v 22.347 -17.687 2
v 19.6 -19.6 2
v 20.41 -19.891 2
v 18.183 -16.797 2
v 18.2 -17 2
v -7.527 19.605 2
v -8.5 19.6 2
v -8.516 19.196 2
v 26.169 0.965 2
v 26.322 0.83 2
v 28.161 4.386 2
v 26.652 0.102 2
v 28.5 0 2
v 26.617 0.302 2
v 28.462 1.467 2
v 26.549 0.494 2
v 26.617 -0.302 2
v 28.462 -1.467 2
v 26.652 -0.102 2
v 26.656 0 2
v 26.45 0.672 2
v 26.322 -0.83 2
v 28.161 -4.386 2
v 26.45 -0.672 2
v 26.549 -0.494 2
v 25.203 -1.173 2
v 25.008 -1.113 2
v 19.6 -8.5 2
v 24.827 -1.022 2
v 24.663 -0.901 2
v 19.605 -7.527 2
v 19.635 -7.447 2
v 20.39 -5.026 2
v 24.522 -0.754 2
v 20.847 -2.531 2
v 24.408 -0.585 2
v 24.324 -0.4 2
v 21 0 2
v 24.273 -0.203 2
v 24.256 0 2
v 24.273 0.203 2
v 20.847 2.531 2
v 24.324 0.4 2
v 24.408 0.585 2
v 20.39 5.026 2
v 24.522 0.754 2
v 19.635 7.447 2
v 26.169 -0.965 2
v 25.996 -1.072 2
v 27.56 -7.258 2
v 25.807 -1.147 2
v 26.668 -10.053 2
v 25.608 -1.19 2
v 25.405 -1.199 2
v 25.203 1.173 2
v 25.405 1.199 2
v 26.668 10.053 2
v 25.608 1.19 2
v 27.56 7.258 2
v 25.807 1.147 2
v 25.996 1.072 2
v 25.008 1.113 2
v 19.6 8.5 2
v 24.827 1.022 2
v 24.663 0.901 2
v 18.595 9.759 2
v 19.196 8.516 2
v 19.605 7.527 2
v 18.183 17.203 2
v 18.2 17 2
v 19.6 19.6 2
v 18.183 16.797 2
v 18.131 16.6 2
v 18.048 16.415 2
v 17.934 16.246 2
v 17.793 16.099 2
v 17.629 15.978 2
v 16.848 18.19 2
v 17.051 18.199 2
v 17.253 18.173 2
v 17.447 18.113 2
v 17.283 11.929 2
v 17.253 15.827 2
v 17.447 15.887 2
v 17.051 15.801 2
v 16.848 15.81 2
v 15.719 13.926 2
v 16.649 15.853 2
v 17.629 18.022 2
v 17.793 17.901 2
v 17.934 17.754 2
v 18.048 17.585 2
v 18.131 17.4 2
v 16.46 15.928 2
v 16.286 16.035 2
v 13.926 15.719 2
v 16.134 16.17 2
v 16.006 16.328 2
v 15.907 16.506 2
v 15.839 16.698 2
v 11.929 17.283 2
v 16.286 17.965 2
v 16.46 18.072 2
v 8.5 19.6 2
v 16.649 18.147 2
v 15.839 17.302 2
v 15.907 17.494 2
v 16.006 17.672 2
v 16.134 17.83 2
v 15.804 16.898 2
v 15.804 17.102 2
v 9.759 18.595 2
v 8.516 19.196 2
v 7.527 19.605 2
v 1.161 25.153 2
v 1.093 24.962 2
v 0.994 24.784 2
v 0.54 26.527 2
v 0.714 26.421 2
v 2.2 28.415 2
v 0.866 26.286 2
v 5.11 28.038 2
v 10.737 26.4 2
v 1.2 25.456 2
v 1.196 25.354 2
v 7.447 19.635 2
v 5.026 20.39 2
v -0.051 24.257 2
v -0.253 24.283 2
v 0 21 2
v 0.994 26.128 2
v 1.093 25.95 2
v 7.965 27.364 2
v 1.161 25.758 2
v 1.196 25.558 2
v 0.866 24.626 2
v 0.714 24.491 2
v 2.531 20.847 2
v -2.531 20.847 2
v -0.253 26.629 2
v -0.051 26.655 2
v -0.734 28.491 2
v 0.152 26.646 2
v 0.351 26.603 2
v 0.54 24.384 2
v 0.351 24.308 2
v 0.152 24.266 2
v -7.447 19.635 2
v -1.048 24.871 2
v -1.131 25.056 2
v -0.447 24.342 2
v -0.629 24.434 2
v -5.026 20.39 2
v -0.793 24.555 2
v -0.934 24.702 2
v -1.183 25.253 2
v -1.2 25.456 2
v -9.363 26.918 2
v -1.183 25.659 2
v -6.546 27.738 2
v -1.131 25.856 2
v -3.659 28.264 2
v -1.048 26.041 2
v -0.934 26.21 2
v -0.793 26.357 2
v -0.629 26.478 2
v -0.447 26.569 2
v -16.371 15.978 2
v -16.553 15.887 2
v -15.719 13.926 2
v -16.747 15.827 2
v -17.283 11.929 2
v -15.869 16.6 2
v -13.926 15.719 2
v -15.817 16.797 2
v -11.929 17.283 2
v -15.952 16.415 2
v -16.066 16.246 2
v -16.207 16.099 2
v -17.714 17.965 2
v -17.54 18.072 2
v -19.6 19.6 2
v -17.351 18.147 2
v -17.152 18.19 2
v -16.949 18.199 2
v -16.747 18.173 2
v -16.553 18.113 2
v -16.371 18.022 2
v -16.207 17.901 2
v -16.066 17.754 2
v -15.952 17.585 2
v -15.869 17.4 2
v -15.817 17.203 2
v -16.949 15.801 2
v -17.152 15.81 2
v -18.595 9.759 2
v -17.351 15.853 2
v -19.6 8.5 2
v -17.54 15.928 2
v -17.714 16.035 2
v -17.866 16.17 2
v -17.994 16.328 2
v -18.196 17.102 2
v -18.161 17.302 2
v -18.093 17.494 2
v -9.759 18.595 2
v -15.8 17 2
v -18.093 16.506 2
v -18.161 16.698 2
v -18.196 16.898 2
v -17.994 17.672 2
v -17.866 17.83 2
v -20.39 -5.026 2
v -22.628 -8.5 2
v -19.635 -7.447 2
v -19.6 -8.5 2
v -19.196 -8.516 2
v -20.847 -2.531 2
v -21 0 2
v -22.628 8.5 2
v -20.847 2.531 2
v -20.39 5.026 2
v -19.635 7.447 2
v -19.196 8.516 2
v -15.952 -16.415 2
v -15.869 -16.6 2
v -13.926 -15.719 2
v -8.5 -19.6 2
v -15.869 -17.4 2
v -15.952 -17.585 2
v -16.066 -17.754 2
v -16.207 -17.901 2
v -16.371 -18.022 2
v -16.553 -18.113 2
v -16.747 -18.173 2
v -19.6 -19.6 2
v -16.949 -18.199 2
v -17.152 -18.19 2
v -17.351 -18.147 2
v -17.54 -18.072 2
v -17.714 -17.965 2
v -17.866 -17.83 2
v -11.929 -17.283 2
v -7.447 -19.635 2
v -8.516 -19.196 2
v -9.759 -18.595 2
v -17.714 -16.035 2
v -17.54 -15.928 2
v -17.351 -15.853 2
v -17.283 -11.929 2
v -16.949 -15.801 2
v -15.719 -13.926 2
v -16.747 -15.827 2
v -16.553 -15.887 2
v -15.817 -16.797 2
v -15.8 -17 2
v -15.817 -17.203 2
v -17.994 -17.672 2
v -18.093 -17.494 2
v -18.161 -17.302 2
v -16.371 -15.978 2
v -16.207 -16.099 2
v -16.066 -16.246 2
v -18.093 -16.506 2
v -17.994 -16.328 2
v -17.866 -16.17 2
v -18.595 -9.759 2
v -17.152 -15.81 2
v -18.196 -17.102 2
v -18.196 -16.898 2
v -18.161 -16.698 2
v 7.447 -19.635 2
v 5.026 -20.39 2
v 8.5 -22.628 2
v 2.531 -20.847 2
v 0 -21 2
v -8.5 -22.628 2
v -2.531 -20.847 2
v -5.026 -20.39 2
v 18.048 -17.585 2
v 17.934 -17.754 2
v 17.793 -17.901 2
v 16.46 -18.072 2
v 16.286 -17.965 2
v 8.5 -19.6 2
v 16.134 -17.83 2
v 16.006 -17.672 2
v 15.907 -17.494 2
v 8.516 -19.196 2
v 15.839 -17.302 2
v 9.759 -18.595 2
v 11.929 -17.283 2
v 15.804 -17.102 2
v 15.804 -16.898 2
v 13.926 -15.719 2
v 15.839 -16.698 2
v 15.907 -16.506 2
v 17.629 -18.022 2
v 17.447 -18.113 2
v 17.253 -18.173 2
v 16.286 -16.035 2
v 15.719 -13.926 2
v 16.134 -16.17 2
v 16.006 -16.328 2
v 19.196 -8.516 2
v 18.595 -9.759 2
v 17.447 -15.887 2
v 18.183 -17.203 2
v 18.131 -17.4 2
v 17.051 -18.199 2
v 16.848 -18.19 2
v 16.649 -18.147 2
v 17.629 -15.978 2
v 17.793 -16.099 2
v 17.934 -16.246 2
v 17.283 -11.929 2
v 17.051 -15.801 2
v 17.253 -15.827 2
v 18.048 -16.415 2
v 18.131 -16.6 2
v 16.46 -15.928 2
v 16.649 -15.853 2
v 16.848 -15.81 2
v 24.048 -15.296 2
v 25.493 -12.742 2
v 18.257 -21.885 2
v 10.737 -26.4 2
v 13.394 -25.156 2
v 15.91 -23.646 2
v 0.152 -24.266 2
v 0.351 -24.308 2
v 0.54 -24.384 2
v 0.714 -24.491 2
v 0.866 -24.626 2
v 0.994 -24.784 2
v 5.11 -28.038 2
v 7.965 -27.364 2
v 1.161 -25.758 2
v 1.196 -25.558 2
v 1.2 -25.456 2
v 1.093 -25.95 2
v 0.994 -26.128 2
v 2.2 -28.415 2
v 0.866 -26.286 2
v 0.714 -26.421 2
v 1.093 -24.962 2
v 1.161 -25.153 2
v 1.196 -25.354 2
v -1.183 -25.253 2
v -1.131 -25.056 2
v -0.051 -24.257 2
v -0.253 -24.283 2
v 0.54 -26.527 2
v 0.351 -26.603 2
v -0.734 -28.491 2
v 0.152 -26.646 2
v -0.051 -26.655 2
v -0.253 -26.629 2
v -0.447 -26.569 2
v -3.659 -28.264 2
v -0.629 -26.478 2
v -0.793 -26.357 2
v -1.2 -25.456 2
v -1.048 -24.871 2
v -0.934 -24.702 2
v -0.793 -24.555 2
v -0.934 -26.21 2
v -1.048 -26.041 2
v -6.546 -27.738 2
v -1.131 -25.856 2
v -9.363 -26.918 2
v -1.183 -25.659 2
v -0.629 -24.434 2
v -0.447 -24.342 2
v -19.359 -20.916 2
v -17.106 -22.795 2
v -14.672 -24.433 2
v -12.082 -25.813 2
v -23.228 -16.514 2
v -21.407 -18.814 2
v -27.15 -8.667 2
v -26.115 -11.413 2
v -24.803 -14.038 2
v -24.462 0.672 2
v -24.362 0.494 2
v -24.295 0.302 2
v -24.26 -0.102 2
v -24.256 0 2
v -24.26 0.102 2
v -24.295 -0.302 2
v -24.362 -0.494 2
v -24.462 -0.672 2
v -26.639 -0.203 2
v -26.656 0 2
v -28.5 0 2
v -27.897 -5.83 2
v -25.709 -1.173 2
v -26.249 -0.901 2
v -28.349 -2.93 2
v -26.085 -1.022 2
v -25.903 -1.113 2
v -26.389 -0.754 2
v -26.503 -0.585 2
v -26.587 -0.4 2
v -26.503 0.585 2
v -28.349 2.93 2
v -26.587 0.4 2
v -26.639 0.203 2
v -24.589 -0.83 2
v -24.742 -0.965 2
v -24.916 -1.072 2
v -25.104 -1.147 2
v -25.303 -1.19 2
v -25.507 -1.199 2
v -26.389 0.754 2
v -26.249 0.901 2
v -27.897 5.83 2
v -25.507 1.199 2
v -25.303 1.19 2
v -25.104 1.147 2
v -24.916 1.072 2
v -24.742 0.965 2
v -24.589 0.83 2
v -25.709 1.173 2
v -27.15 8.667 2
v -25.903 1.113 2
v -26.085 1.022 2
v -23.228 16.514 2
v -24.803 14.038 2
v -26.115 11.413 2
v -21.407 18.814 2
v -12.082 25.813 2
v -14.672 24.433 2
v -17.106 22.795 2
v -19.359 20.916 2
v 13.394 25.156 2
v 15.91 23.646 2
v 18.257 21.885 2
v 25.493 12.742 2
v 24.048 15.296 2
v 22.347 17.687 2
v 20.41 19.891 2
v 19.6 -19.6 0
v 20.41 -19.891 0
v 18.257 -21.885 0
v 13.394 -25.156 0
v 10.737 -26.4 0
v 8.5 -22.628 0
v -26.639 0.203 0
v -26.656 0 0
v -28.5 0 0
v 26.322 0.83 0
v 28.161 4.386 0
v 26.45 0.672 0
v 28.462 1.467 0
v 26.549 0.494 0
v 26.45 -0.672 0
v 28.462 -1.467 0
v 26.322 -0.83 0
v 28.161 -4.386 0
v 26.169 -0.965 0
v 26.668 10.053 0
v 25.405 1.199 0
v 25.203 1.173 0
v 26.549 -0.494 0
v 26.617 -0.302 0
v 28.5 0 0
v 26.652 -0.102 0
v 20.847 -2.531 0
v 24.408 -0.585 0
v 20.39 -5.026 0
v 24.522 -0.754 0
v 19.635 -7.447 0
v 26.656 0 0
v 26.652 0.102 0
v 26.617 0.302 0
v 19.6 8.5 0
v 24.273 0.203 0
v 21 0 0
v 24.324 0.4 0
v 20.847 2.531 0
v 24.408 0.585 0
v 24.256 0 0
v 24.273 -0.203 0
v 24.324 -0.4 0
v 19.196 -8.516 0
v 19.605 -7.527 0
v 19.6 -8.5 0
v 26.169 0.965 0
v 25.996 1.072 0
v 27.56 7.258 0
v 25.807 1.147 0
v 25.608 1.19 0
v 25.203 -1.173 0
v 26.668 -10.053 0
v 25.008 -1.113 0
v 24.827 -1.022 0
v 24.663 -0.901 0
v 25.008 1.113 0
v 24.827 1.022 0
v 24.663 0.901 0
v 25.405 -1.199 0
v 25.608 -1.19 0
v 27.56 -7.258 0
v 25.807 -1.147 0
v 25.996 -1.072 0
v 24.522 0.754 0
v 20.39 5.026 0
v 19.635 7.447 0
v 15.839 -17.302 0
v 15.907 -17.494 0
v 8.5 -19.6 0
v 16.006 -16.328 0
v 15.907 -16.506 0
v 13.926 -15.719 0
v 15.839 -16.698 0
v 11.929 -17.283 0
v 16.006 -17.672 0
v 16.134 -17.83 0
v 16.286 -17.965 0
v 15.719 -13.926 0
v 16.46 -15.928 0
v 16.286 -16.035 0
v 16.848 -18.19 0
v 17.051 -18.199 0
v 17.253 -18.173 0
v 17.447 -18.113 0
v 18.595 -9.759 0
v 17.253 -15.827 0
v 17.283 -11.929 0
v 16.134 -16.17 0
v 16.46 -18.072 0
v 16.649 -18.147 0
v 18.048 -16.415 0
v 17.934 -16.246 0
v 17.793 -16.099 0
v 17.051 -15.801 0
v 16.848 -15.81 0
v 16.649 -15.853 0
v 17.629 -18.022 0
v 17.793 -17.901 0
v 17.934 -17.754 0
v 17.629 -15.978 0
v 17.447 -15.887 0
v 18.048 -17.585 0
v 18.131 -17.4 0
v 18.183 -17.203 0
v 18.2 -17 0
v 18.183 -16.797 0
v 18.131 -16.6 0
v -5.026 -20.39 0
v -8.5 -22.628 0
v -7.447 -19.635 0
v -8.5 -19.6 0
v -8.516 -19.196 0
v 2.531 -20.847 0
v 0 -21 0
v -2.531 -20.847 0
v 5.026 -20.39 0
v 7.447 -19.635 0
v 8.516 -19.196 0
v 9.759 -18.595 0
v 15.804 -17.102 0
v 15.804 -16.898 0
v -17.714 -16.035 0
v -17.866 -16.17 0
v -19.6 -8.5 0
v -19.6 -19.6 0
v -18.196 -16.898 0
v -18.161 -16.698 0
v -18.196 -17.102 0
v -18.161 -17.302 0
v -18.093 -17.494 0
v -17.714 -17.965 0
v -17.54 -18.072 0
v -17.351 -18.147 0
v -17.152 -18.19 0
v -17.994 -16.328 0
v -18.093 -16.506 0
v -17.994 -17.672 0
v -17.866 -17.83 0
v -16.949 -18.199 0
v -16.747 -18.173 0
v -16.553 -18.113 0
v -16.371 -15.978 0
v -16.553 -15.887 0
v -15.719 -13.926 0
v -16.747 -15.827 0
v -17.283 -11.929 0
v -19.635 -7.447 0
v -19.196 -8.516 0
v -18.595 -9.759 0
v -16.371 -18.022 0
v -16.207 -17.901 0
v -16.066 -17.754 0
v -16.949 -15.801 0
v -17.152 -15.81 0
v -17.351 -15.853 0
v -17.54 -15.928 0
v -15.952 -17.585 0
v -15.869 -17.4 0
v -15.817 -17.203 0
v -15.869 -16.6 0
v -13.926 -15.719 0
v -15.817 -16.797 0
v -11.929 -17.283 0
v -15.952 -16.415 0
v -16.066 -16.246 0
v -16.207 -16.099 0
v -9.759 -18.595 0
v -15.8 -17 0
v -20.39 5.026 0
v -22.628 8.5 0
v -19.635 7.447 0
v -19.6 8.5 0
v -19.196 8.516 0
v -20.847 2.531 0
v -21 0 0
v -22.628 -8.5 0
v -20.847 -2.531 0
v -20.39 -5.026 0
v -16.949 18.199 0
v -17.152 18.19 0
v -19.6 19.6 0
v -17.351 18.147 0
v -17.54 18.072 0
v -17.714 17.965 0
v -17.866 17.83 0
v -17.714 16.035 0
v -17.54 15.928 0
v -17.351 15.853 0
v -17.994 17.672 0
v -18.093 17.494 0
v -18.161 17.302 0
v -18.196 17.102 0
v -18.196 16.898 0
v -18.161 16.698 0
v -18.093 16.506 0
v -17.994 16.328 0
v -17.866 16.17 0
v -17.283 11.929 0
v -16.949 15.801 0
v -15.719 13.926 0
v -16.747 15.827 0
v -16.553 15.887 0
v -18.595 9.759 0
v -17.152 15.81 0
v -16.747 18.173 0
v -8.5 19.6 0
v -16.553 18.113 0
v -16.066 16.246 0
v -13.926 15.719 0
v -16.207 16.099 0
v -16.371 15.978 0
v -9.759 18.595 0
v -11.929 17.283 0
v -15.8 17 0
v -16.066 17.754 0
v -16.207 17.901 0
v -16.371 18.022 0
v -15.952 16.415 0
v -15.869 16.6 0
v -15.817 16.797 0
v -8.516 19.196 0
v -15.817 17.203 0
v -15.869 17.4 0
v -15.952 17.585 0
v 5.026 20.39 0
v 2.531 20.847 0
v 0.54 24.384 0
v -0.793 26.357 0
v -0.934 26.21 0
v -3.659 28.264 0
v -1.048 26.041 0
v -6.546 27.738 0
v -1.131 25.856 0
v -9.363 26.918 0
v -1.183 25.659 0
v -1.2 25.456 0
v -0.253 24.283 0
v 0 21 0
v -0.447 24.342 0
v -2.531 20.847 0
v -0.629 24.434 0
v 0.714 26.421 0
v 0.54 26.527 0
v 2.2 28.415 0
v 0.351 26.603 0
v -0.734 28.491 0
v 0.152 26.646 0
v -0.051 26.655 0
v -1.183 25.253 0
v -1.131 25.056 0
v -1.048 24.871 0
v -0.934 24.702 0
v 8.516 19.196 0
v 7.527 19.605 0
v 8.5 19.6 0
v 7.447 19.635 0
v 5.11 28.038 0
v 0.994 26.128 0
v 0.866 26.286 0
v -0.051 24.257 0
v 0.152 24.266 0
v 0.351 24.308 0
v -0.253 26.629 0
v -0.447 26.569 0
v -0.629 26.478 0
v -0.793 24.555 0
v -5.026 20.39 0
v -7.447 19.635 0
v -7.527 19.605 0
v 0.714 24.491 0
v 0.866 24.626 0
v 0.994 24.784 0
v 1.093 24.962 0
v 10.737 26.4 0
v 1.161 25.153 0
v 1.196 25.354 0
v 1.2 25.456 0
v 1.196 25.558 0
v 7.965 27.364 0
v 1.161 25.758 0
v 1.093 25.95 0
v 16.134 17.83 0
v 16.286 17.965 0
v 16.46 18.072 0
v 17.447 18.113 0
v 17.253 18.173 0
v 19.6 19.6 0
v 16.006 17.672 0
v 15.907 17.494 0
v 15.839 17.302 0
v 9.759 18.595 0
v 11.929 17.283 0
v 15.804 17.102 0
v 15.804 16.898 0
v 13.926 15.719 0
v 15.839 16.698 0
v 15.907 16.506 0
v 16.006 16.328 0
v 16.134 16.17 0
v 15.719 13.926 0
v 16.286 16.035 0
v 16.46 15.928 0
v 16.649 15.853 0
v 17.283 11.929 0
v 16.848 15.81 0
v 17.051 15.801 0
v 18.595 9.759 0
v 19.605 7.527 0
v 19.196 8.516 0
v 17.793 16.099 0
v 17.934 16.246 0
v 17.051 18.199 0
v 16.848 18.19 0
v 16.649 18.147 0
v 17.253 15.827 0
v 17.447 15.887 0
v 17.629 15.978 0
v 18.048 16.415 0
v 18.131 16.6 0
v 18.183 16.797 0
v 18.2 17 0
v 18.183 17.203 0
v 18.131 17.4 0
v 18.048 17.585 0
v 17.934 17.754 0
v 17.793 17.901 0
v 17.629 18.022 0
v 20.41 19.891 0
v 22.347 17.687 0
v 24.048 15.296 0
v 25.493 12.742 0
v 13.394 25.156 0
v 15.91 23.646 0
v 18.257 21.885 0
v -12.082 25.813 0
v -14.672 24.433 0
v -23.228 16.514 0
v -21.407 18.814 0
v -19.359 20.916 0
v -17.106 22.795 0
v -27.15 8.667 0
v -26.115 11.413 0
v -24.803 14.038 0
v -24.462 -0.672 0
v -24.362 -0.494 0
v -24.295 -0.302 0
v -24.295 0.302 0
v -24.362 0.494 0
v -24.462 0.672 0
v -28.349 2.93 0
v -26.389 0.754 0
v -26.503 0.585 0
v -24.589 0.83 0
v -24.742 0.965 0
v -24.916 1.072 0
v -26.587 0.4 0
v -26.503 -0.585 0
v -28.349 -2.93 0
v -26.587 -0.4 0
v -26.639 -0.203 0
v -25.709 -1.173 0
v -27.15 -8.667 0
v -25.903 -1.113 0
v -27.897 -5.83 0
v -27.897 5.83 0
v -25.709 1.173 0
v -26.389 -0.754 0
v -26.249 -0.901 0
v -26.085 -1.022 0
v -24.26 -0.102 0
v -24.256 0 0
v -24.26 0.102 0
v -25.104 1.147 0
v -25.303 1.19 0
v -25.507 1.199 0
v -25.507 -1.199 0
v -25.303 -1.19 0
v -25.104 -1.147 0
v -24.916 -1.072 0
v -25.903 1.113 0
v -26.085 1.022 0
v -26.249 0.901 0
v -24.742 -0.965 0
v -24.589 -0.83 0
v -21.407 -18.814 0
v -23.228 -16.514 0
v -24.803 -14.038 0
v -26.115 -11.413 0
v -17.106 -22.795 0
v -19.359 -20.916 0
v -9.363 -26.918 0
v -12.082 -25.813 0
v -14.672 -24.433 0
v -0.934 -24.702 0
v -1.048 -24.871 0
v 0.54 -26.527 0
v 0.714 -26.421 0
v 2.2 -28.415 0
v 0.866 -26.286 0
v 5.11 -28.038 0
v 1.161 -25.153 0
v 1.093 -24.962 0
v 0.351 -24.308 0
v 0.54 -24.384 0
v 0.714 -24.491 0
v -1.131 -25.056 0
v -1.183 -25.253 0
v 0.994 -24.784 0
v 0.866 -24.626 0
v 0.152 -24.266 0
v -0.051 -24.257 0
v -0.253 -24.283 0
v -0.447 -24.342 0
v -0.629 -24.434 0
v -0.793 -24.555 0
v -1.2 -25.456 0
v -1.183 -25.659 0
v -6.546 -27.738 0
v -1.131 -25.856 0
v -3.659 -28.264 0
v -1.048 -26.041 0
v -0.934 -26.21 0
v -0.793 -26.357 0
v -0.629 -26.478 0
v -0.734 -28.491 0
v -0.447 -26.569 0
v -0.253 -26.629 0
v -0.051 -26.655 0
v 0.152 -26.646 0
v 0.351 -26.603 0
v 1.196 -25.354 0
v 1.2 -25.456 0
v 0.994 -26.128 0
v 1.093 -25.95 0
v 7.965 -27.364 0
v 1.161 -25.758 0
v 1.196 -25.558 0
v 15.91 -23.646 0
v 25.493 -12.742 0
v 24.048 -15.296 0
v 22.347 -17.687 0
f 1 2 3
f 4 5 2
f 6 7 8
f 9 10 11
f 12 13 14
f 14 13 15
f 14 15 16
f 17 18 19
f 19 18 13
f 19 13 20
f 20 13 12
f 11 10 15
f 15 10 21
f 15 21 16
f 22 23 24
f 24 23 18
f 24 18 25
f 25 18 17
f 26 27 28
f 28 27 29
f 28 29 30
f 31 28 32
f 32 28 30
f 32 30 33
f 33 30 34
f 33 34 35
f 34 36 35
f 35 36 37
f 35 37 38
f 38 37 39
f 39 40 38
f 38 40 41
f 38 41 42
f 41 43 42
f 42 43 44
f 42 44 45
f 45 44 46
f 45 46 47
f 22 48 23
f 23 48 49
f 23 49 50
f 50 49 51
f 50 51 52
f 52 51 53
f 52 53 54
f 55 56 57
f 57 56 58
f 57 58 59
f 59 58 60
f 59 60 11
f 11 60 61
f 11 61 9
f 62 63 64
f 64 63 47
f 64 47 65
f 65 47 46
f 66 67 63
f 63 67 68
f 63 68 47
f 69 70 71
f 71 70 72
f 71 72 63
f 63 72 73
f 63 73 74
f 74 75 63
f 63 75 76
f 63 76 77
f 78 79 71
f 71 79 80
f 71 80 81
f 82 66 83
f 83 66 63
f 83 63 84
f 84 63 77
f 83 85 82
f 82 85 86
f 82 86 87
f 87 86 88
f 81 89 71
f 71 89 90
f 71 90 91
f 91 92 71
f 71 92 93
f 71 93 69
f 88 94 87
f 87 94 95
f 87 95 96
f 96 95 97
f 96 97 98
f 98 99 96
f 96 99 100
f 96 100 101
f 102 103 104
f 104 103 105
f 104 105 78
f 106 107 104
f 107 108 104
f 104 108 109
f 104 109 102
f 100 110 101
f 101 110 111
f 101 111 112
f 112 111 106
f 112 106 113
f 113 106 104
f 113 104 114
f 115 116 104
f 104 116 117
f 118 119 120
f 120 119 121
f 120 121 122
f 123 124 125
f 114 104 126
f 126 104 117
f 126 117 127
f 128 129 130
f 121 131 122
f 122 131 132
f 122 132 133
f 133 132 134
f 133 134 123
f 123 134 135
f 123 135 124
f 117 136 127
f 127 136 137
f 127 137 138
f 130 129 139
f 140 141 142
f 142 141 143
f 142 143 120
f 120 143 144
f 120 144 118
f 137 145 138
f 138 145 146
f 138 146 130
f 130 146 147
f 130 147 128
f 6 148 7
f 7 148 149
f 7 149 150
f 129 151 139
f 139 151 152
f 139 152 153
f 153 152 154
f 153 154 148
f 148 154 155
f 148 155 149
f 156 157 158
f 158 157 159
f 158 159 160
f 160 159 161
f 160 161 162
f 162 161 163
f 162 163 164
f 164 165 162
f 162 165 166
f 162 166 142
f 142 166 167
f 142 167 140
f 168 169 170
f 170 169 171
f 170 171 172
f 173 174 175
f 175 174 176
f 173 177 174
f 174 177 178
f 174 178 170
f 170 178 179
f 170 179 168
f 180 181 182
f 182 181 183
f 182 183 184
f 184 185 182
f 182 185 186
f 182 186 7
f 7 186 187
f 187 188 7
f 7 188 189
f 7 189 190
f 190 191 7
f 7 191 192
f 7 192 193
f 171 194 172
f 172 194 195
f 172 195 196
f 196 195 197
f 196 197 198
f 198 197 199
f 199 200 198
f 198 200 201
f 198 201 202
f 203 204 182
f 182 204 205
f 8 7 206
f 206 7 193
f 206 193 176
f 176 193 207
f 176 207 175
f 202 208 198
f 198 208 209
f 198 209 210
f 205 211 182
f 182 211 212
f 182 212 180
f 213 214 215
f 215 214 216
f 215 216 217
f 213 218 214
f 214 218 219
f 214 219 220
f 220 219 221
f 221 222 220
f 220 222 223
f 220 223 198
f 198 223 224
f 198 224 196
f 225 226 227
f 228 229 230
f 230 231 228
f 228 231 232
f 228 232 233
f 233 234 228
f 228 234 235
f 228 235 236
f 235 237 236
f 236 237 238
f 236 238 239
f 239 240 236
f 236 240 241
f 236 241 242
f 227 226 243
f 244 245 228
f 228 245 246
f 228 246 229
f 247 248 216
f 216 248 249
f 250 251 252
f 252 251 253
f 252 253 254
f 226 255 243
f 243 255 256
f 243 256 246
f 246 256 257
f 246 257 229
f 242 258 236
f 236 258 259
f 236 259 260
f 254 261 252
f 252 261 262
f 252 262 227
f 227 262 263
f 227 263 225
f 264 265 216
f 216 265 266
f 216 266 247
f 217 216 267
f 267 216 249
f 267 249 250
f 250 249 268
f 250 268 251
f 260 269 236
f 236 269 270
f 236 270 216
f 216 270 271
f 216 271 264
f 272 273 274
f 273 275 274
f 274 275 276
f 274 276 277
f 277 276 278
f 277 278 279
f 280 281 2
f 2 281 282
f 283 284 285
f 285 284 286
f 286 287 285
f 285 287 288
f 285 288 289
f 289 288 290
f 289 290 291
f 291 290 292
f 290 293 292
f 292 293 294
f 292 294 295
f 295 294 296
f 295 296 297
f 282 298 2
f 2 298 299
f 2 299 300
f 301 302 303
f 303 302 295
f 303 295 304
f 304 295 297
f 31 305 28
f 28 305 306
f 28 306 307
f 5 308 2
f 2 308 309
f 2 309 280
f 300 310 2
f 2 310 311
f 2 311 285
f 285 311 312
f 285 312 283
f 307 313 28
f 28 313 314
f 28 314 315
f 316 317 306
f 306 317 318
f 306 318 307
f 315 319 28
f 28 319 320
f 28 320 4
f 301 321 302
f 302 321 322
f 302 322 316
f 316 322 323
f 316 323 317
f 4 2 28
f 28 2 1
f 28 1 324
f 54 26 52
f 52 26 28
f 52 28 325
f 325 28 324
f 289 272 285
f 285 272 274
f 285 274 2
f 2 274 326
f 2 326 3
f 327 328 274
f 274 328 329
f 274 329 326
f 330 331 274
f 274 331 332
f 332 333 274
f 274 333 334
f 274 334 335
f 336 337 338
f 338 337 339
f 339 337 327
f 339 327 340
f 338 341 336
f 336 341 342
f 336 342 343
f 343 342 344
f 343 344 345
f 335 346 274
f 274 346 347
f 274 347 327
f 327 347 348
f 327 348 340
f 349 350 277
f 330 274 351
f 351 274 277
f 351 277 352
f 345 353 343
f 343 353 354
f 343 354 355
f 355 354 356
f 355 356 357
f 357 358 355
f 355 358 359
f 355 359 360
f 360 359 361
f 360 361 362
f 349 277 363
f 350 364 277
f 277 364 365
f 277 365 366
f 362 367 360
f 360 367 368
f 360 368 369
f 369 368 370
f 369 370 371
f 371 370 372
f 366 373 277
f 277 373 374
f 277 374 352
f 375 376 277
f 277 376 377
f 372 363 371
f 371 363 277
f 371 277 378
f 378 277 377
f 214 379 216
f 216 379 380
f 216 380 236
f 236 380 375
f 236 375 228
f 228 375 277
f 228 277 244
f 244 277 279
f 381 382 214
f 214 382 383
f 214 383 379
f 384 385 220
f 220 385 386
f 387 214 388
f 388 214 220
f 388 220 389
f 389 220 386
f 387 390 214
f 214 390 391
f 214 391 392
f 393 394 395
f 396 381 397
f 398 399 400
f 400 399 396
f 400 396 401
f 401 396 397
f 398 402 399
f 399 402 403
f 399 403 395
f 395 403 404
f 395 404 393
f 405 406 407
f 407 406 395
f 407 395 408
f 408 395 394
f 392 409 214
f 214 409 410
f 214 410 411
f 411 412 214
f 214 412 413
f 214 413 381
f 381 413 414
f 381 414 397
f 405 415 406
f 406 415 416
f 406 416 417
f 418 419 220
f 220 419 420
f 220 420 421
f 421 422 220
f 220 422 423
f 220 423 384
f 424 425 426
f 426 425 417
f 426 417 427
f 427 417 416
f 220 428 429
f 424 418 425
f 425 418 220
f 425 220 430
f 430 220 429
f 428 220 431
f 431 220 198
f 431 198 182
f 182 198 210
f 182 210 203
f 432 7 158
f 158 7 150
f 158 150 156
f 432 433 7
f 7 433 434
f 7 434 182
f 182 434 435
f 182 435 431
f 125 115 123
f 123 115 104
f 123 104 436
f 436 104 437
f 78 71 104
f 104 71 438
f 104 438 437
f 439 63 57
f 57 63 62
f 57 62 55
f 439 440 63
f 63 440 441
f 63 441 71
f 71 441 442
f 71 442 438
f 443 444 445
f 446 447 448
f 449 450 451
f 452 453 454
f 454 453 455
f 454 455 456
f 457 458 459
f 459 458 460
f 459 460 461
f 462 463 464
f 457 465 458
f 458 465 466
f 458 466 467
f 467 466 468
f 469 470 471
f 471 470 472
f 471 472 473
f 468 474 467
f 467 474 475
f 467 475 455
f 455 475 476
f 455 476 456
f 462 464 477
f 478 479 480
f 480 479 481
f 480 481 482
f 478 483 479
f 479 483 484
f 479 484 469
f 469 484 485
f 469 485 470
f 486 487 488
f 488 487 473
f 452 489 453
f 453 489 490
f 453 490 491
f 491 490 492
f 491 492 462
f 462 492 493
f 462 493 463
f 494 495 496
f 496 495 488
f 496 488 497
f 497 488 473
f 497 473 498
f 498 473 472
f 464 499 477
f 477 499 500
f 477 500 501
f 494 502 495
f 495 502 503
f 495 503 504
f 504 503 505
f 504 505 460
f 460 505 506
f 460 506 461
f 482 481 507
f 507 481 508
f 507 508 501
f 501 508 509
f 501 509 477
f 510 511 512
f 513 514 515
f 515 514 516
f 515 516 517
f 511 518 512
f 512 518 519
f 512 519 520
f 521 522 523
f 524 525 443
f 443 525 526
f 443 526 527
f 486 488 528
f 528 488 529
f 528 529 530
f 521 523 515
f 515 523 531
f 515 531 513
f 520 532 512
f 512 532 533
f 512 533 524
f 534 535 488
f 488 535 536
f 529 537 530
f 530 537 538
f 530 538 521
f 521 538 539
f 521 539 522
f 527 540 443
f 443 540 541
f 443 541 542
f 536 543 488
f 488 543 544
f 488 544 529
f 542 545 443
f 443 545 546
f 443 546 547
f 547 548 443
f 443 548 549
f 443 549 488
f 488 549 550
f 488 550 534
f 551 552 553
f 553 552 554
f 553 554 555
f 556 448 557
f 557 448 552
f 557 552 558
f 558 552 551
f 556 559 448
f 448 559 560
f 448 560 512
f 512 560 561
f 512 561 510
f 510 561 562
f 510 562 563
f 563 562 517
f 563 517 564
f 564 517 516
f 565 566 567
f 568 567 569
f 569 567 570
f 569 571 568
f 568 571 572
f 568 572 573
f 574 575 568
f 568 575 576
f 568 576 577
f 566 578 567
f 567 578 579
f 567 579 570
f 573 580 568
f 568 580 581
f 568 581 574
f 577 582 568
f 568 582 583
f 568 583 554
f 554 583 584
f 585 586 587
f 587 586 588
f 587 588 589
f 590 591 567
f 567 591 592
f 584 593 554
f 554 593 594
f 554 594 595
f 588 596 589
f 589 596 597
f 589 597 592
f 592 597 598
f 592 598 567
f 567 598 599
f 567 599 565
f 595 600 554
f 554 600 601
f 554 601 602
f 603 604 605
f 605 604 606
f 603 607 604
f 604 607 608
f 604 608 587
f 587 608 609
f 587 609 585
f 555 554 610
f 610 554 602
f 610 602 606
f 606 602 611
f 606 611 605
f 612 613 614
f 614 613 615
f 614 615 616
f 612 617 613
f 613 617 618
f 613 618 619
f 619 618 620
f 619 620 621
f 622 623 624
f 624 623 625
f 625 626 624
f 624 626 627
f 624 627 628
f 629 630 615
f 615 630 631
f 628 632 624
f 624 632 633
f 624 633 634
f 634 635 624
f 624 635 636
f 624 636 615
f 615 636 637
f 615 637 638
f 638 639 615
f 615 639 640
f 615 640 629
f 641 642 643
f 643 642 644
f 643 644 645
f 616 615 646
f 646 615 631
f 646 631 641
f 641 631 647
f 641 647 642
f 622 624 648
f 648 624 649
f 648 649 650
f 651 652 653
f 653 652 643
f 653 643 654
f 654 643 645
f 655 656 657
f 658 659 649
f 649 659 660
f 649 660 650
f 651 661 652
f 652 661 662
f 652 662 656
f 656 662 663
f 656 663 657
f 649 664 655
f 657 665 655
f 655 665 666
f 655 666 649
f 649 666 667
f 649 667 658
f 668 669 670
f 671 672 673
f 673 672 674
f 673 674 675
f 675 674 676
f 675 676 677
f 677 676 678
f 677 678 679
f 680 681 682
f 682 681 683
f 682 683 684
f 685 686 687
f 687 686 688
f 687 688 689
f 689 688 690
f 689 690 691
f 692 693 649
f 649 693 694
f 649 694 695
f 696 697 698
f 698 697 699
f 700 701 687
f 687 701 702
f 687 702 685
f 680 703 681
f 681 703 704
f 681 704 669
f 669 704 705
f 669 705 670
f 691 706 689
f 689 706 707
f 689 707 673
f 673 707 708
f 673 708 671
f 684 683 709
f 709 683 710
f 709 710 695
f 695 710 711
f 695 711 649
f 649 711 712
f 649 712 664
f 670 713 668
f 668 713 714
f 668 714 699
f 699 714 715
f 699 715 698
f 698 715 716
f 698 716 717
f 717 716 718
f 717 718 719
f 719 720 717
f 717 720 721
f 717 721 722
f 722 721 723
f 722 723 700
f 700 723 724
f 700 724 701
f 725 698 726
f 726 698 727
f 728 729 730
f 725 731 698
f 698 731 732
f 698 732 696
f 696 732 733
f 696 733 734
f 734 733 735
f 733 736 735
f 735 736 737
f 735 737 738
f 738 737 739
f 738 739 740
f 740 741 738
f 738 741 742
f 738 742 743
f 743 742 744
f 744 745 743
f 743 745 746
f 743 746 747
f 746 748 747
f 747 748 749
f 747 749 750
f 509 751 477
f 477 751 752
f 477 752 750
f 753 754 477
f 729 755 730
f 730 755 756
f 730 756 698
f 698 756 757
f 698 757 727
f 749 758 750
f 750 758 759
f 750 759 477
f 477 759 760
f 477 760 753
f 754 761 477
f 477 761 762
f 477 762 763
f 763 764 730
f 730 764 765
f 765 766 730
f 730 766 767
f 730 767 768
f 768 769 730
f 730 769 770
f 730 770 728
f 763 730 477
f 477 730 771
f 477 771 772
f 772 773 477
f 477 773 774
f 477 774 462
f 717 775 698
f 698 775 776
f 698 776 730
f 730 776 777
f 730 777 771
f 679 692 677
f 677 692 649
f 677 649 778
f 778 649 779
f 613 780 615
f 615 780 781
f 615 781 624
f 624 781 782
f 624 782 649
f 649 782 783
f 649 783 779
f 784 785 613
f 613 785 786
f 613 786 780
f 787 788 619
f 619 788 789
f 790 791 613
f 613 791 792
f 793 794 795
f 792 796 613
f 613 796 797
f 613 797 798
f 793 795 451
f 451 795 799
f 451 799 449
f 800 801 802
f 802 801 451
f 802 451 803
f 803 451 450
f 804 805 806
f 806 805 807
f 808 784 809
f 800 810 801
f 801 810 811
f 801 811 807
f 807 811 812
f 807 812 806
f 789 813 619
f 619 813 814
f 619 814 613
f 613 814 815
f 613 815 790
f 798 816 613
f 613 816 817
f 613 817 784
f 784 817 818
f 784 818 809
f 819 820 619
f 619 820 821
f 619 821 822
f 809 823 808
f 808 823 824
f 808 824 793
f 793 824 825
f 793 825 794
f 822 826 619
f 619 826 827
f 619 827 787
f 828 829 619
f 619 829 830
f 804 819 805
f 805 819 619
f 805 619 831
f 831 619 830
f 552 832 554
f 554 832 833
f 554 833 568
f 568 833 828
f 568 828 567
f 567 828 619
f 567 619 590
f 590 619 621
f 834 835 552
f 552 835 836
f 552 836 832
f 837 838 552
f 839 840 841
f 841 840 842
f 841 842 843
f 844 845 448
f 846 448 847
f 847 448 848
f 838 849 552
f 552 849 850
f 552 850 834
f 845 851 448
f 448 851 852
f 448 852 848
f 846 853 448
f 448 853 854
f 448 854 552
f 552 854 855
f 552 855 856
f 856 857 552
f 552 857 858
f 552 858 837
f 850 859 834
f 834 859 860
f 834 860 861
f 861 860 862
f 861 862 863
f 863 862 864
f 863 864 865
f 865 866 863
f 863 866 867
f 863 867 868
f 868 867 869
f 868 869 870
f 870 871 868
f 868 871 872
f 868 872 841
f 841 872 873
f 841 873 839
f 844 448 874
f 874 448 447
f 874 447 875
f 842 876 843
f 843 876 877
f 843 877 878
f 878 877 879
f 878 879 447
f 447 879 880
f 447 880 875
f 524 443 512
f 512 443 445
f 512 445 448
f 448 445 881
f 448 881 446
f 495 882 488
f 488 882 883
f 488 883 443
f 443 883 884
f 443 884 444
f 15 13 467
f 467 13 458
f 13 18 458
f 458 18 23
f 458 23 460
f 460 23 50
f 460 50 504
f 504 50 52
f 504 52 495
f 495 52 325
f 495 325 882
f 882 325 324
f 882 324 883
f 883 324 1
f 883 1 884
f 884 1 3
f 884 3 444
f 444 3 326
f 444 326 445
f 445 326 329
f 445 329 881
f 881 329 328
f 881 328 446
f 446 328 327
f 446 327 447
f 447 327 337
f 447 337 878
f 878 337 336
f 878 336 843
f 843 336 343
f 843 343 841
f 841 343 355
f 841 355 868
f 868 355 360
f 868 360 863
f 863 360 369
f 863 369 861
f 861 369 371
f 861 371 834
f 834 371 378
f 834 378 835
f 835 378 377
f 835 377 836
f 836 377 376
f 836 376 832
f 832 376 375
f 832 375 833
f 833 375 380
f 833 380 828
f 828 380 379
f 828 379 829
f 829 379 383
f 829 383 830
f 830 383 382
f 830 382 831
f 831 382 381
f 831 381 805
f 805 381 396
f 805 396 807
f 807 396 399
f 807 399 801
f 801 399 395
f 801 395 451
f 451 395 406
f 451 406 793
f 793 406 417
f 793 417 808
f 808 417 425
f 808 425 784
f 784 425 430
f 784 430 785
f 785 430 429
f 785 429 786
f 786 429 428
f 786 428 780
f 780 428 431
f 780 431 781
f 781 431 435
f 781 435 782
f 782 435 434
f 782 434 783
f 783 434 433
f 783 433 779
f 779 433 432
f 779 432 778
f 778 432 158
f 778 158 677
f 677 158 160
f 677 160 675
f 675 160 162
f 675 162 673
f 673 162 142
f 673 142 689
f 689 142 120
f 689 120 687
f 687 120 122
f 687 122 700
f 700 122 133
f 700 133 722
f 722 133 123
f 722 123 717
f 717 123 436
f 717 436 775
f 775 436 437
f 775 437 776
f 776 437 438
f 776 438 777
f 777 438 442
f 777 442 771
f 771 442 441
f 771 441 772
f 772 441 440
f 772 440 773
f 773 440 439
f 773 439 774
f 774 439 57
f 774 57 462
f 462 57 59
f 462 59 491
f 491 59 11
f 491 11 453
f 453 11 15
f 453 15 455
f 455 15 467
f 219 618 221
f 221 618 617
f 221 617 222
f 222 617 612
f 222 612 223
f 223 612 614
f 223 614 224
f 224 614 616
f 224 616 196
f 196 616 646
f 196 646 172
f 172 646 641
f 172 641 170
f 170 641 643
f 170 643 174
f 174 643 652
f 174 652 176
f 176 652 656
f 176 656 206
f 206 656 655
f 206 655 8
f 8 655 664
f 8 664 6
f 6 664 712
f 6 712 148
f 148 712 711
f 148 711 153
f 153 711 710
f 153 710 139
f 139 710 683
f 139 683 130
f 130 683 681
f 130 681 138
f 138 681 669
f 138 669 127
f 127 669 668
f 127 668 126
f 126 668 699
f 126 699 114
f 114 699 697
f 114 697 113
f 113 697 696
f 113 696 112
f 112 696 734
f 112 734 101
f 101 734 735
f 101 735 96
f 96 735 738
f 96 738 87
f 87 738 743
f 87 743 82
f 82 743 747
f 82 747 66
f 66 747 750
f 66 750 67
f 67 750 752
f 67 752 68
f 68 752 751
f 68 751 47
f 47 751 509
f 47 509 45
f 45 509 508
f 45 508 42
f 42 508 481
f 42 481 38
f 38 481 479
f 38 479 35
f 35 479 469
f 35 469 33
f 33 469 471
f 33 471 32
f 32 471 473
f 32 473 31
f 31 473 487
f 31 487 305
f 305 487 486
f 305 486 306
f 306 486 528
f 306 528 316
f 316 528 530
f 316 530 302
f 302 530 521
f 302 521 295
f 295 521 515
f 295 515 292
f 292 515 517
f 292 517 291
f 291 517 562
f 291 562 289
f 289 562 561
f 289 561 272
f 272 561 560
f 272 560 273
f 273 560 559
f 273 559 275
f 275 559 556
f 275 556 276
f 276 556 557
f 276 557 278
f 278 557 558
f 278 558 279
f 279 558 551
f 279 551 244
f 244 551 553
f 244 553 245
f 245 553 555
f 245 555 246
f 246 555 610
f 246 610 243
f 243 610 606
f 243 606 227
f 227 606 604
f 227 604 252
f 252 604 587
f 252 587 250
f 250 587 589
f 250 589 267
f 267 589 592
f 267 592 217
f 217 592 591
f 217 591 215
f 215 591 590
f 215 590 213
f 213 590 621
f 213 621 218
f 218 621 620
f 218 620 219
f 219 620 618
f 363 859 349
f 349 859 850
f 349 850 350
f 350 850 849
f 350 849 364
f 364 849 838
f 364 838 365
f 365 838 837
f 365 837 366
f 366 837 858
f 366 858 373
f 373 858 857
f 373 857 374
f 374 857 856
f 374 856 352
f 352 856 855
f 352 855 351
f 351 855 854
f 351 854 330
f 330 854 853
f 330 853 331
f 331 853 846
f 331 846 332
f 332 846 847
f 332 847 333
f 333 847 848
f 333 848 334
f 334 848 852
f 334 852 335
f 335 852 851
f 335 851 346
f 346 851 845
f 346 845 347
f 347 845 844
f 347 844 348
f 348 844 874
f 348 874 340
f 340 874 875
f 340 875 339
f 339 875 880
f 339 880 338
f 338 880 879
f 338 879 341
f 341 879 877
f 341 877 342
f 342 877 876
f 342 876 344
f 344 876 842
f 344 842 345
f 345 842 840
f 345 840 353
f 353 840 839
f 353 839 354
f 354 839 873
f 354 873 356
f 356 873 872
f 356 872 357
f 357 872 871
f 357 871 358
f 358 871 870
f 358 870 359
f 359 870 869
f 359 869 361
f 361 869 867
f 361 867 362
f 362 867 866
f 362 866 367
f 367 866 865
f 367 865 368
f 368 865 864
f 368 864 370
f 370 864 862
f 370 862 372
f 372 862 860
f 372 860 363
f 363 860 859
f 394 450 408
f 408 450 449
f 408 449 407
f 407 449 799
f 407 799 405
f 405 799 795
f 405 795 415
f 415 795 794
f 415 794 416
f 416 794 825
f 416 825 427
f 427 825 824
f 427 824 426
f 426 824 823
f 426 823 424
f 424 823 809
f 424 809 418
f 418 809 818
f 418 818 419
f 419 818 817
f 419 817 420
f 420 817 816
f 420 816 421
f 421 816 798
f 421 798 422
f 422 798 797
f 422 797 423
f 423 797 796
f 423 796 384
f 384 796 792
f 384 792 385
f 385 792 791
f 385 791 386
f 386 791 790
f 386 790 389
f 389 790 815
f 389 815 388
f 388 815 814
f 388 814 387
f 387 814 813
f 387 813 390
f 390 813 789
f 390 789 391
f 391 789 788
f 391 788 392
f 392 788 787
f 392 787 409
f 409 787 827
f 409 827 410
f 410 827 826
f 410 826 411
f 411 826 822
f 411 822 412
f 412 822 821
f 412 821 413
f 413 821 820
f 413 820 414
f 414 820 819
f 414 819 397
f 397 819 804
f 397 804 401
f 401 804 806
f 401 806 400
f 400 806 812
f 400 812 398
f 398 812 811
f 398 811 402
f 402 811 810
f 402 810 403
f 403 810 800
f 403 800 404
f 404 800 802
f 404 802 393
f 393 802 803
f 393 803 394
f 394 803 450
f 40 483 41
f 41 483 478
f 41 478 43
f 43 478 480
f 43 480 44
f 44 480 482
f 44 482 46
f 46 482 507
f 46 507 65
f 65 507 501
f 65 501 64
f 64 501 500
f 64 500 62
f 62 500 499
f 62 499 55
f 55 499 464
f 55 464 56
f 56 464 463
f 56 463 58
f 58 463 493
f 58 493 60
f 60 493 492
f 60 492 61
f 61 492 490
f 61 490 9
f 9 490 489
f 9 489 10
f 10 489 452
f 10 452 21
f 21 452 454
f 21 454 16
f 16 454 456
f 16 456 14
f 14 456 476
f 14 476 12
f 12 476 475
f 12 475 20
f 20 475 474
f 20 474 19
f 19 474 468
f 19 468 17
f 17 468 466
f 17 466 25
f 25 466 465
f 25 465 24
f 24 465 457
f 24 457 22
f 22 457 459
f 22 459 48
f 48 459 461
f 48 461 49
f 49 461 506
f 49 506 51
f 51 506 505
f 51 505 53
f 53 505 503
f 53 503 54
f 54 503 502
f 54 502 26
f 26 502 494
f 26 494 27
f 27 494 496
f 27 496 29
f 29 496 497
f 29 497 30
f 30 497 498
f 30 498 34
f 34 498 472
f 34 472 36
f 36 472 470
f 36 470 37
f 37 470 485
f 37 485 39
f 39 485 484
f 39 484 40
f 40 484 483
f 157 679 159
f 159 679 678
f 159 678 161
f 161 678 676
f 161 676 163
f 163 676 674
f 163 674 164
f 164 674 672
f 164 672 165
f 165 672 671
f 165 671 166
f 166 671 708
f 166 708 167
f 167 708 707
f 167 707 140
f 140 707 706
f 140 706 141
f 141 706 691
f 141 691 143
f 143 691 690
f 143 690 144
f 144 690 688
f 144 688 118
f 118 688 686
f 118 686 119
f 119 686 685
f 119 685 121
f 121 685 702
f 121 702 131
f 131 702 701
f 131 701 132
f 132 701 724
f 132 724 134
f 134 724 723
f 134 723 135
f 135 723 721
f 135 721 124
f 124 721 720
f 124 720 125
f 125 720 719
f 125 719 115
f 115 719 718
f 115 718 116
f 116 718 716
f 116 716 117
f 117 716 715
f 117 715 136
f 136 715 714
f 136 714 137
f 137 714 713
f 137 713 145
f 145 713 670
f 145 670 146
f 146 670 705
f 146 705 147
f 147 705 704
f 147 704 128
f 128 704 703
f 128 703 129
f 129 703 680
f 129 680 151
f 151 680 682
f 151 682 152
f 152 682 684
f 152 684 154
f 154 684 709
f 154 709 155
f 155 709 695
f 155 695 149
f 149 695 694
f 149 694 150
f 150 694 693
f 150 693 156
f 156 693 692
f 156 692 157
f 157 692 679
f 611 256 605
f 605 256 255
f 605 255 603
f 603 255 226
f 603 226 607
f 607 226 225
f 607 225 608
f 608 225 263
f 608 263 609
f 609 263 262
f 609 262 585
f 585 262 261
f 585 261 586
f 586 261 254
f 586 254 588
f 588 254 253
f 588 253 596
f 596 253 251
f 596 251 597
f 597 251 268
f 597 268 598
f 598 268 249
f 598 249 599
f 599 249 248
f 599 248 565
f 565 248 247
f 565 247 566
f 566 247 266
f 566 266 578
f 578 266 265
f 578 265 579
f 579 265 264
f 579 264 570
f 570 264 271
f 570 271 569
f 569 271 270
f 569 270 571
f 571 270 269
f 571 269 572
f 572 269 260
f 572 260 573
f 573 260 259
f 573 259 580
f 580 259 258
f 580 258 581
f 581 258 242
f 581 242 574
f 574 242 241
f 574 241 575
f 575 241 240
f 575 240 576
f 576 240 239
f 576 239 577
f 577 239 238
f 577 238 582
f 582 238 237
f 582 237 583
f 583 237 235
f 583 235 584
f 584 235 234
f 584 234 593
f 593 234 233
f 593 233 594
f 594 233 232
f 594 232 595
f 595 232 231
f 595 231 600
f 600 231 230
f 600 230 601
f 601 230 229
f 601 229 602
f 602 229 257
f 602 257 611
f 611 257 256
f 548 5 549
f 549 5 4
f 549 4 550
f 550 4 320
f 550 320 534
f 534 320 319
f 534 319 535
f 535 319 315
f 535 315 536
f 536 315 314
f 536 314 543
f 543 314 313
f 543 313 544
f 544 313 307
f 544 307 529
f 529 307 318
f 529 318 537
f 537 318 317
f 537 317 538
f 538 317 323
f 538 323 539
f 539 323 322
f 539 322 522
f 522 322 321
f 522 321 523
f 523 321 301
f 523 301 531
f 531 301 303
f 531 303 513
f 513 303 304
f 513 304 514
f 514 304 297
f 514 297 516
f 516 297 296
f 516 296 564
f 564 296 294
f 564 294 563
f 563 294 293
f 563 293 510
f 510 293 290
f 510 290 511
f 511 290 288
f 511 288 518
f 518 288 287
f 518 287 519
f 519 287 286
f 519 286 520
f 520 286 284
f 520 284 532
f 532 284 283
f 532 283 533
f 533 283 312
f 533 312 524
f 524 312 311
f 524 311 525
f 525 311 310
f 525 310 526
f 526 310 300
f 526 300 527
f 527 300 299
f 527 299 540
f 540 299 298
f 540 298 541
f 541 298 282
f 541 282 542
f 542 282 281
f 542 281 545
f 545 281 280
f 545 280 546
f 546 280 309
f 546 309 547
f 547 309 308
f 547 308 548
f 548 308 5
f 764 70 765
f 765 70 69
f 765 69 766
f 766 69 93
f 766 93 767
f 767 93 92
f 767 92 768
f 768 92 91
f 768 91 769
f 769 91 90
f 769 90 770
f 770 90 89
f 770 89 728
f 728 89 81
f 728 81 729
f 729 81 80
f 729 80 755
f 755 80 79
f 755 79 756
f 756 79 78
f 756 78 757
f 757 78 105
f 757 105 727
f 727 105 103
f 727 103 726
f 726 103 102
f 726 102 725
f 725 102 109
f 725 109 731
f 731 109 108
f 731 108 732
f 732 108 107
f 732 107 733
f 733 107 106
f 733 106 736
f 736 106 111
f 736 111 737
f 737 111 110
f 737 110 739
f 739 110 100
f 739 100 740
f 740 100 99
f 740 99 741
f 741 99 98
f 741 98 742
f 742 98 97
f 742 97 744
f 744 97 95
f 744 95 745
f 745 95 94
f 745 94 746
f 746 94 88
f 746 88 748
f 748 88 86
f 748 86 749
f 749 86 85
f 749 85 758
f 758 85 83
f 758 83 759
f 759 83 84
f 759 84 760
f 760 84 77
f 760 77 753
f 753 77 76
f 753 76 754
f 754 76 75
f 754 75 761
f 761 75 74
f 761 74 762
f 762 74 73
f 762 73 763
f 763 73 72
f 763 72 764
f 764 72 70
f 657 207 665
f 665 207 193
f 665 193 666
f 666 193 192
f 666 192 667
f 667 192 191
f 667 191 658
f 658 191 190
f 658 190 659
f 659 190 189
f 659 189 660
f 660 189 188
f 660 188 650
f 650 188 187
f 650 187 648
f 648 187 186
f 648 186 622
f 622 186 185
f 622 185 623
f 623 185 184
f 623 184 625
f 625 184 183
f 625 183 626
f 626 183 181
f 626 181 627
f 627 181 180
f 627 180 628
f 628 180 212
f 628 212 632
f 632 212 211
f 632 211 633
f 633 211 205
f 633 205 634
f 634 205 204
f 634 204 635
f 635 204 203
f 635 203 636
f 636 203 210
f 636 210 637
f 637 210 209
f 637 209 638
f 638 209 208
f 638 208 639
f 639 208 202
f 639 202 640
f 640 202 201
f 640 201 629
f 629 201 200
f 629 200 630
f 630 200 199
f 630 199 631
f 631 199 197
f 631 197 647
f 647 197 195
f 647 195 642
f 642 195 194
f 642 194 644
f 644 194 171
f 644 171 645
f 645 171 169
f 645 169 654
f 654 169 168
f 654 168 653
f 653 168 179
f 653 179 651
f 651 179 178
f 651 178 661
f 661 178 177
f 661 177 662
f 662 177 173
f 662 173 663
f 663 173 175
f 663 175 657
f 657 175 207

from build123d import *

# Parameters (mm, degrees)
SKETCH_1_R          = 28.5
SKETCH_1_R_2        = 21
EXTRUDE_1_DEPTH     = 2
SKETCH_2_R          = 1.2
CUT_EXTRUDE_1_DEPTH = 41.354677548
HOLE_WIZARD_M2_1_D  = 2.4


with BuildPart() as part:
    # 스케치1 → 보스-돌출1 (new body)
    with BuildSketch(Plane.XY):
        Circle(SKETCH_1_R)
        Circle(SKETCH_1_R_2, mode=Mode.SUBTRACT)
    extrude(amount=EXTRUDE_1_DEPTH)

    # 스케치2 → 컷-돌출1 (cut, through all)
    with BuildSketch(Plane.XY):
        with Locations((0, 25.455844123)):
            Circle(SKETCH_2_R)
        with Locations((25.455844123, 0)):
            Circle(SKETCH_2_R)
        with Locations((-25.455844123, 0)):
            Circle(SKETCH_2_R)
        with Locations((0, -25.455844123)):
            Circle(SKETCH_2_R)
    extrude(amount=CUT_EXTRUDE_1_DEPTH, mode=Mode.SUBTRACT)

    # M2 여유 구멍1 (through all)
    with Locations(Plane(origin=(-17, 17, 2), x_dir=(1, 0, 0), z_dir=(0, 0, 1))):
        with Locations((0, 0), (34, 0), (34, -34), (0, -34)):
            Hole(HOLE_WIZARD_M2_1_D / 2)


solid = part.part
